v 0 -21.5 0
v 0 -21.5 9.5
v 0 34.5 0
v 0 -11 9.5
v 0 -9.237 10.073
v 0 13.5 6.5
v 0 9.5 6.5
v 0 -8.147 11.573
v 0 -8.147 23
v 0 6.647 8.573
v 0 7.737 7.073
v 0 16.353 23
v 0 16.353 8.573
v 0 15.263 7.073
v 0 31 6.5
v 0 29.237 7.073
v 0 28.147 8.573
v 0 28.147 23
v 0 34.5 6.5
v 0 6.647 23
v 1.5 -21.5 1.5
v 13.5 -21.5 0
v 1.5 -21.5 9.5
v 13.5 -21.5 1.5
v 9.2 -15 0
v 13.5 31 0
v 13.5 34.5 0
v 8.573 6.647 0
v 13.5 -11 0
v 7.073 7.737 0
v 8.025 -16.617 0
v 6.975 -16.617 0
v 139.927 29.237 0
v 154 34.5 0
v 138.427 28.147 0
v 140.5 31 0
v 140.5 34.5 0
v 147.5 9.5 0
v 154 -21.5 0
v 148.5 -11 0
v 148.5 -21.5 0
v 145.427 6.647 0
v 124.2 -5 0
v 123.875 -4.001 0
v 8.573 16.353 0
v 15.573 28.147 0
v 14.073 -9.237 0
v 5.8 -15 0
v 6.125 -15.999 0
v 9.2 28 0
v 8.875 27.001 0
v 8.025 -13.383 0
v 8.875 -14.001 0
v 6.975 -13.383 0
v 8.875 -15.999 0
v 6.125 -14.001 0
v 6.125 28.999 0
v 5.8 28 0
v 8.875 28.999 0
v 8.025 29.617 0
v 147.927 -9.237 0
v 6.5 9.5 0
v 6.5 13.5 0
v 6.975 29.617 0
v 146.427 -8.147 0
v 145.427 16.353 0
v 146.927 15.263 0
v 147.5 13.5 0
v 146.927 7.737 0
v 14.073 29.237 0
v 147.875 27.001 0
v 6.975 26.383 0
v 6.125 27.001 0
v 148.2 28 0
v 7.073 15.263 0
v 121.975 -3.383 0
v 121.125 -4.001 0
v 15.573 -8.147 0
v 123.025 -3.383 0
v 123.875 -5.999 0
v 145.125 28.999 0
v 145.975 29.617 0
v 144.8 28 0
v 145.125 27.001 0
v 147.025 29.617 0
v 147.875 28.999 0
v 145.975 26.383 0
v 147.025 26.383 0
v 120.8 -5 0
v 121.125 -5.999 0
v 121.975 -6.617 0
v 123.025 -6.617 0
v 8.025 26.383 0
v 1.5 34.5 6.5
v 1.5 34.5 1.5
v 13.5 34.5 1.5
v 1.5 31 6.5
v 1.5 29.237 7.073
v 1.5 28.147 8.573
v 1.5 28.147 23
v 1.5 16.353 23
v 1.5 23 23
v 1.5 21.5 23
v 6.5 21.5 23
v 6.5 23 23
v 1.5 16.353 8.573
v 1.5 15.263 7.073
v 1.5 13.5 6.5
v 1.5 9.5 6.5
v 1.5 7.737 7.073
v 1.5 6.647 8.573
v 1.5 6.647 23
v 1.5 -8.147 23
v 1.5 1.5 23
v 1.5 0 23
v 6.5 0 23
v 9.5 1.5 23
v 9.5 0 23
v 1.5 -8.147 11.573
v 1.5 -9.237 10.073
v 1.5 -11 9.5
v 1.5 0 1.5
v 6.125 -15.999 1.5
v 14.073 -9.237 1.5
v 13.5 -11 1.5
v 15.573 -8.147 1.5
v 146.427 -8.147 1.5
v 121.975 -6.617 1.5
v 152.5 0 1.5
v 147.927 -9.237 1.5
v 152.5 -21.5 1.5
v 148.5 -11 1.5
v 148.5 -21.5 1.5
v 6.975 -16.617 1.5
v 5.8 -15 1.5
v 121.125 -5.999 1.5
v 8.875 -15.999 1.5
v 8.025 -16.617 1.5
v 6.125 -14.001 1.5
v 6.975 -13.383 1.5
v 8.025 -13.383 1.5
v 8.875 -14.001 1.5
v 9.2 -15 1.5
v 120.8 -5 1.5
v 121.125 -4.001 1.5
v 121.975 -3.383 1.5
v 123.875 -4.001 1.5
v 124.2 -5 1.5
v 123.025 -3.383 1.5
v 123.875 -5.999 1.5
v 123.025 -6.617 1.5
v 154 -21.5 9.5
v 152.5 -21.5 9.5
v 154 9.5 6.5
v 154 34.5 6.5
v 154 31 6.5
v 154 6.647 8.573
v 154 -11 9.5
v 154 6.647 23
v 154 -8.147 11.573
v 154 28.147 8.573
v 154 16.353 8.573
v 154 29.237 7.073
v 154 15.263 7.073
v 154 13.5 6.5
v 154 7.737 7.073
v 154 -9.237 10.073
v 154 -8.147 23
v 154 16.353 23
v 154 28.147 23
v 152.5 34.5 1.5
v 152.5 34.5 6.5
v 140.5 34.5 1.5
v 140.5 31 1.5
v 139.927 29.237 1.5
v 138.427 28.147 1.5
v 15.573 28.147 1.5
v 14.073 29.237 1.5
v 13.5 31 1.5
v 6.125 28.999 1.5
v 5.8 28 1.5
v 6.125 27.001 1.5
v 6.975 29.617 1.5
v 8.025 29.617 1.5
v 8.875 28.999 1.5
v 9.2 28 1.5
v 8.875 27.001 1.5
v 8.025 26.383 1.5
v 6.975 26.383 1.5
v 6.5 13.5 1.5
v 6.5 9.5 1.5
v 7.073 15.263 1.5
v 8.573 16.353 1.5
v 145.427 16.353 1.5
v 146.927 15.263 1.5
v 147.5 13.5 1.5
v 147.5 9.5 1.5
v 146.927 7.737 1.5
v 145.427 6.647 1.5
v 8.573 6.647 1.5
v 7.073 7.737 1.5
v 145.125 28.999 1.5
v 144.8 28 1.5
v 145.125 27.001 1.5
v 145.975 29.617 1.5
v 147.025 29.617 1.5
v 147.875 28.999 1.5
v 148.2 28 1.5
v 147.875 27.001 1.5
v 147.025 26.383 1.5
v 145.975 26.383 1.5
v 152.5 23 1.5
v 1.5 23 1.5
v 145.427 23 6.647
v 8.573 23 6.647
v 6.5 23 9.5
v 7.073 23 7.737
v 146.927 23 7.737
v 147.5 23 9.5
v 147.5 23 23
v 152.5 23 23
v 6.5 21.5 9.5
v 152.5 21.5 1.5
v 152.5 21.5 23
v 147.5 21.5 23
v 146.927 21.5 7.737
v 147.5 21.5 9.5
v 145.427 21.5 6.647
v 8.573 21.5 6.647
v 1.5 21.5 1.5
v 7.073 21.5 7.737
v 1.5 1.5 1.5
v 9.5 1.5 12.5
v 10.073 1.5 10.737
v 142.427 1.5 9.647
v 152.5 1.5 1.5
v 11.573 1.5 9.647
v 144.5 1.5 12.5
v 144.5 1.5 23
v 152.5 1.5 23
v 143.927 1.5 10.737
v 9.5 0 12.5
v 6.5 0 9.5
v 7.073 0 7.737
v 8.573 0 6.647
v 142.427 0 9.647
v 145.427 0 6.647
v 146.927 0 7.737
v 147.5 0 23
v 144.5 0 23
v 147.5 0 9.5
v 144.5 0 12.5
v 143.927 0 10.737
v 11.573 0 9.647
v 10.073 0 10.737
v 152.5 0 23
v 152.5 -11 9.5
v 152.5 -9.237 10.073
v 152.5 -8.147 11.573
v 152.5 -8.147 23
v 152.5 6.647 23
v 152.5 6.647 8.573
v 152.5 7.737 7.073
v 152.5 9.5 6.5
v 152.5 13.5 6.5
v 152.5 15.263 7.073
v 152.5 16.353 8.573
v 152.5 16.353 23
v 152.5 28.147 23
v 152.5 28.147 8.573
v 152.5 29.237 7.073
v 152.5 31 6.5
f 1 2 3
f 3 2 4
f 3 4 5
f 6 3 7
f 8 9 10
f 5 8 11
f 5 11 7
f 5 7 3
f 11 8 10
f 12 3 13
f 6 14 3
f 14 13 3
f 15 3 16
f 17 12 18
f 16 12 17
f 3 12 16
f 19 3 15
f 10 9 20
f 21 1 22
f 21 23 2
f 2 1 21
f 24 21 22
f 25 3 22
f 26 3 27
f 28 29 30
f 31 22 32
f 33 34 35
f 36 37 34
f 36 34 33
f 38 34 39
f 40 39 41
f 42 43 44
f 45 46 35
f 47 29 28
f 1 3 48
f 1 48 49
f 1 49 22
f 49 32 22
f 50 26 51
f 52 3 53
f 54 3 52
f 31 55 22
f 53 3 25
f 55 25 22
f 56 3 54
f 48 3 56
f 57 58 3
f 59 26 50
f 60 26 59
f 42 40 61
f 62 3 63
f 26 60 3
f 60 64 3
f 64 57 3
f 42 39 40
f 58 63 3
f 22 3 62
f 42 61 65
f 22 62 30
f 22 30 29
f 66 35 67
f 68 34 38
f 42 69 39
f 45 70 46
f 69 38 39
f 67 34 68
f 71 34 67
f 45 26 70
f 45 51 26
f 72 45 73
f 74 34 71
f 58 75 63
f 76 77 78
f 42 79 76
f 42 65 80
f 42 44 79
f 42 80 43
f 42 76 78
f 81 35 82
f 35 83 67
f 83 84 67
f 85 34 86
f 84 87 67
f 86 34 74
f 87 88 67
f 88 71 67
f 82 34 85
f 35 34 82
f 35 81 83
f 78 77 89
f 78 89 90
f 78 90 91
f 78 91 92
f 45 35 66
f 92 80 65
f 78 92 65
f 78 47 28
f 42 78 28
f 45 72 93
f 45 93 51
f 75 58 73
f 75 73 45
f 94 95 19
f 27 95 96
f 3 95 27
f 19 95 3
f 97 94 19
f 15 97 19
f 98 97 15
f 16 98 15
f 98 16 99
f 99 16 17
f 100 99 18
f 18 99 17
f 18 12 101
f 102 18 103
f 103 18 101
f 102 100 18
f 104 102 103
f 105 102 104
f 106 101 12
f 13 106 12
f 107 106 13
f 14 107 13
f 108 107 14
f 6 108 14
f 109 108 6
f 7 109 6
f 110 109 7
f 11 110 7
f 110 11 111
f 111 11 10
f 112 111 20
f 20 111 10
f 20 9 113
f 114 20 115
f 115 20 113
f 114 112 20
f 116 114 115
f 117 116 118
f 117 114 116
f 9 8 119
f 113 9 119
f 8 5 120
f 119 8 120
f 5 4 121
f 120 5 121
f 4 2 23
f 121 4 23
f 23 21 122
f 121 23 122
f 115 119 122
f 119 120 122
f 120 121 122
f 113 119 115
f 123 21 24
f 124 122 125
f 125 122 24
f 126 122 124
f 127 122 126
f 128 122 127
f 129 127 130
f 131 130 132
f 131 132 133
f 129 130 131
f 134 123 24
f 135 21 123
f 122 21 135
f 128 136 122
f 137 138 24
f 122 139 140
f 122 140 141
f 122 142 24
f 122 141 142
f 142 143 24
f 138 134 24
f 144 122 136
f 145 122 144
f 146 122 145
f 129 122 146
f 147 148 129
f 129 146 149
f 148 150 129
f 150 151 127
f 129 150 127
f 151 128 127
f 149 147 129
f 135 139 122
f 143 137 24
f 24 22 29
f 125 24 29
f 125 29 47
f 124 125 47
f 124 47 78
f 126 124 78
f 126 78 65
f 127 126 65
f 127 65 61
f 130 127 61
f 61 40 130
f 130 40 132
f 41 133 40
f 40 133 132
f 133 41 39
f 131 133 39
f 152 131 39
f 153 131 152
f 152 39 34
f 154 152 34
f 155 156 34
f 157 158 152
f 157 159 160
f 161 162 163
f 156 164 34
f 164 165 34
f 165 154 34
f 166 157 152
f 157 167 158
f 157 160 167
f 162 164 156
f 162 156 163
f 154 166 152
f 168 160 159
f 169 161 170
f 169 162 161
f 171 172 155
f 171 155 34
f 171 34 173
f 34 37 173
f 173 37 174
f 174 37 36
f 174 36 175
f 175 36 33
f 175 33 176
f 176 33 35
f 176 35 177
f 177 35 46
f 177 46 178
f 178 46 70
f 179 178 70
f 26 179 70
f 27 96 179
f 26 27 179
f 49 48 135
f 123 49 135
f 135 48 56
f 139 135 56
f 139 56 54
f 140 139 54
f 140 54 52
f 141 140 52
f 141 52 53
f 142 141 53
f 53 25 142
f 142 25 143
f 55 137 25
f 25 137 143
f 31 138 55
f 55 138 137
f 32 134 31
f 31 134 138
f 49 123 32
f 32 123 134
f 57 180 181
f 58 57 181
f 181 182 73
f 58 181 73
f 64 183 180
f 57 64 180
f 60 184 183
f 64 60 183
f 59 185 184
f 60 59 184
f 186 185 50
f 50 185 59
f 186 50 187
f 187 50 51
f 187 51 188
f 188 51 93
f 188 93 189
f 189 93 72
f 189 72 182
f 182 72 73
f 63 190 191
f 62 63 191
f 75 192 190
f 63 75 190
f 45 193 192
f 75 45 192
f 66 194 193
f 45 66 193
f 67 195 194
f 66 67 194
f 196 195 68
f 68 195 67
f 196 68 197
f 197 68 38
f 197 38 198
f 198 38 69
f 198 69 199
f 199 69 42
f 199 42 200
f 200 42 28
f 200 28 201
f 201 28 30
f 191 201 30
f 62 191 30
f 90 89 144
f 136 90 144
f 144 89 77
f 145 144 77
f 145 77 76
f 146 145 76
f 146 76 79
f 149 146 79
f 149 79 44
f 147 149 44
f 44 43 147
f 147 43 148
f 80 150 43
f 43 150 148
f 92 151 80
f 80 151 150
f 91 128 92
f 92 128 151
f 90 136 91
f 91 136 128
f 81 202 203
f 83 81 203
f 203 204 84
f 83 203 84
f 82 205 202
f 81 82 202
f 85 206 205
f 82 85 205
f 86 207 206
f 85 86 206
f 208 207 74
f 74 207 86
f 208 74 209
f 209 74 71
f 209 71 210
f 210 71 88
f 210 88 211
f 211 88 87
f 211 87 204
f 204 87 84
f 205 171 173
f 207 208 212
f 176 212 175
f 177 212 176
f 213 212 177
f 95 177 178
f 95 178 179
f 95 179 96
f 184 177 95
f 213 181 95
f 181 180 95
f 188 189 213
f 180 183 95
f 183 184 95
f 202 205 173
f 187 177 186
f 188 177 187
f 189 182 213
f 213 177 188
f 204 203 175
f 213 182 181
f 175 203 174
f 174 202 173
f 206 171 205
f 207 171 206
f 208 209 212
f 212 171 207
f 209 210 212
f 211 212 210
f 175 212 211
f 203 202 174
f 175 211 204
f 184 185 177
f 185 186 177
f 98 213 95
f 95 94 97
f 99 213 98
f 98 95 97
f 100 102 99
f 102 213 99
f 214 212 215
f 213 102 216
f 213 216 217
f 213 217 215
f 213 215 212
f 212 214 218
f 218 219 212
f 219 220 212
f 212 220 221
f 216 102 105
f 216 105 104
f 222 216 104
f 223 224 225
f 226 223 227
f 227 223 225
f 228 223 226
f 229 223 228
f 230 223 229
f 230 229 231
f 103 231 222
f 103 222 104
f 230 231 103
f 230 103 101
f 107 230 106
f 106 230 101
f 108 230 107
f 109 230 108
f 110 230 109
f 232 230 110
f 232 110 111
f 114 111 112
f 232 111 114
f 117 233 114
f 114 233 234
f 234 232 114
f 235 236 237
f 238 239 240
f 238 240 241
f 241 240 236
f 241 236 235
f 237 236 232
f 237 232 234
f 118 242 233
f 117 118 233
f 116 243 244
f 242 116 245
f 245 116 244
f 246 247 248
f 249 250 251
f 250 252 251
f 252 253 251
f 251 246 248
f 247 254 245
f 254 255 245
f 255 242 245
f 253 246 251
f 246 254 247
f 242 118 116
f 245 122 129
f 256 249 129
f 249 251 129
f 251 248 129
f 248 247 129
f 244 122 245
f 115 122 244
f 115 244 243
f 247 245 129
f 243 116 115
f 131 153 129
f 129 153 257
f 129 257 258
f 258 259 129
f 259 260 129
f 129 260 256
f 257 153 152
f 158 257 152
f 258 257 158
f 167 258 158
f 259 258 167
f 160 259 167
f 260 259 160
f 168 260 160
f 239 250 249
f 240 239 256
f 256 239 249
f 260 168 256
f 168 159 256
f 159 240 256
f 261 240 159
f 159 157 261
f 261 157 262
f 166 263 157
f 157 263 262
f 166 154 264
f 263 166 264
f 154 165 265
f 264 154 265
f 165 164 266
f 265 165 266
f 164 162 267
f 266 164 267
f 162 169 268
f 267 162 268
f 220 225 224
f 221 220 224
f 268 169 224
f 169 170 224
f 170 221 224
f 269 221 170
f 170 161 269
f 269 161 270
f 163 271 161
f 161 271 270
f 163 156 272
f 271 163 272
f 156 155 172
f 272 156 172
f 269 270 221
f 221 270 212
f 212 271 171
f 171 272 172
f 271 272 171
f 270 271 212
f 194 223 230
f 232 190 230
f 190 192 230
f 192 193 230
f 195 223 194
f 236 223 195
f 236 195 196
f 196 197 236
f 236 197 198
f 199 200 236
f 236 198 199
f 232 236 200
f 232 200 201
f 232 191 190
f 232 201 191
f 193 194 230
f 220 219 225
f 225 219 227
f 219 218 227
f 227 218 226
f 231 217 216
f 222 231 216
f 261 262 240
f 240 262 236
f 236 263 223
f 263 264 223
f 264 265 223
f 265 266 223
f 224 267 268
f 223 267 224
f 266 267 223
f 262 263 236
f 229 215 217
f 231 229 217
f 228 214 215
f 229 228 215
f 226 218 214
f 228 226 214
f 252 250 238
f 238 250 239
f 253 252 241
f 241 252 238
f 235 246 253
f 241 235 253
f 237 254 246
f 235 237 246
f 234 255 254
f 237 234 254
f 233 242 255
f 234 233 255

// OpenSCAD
Dl = 151;
Db = 20;
Dh = 20;

Nl = 151;
Nb = 20;
Nh = 20;
NWr = 3;
NWb = 12;

Nb2 = 40;

d = 1.5;

Wb = 5;
Wr = 3;

$fn = 10;

module frame(l, b, h, Wb, Wr, d)
{
	difference(){
		cube([l+2*d,b+2*d,h+2*d]);
		translate([d,d,d])cube([l,b,h+4*d]);
	
		rotate([90,0,0])
		translate([Wb+Wr+d,Wb+Wr+d,-4*d-b]){
			minkowski(){
				cube([l-2*(Wb+Wr),max(l,b,h)+4*d+2*Wr,l+8*d]);
				cylinder(r=Wr,h=1);
			}
		}
	
		rotate([0,-90,0])
		translate([Wb+Wr+d,Wb+Wr+d,-4*d-l]){
			minkowski(){
				cube([max(l,b,h)+4*d+2*Wr,b-2*(Wb+Wr),l+8*d]);
				cylinder(r=Wr,h=1);
			}
		}
	
		translate([Wb+Wr+d,Wb+Wr+d,-4*d]){
			minkowski(){
				cube([l-2*(Wb+Wr),b-2*(Wb+Wr),h+8*d]);
				cylinder(r=Wr,h=1);
			}
		}
	}
}

module frame2(l, b, h, Wl, Wb, Wr, d, rl, xl, yl)
{
	difference(){
		cube([l+2*d,b+2*d,h+2*d]);
		translate([d,d,d])cube([l,b,h+4*d]);
	
		rotate([90,0,0]){
			translate([Wl+Wr+d,Wb+Wr+d,-4*d-b]){
				minkowski(){
					cube([l-2*(Wl+Wr),max(l,b,h)+4*d+2*Wr,l+8*d]);
					cylinder(r=Wr,h=1);
				}
			}
			translate([xl,yl,-2*d])cylinder(r=rl, h=3*d);
			translate([l+2*d-xl,yl,-2*d])cylinder(r=rl, h=3*d);
		}
		rotate([0,-90,0]){
			translate([Wb+Wr+d,Wb+Wr+d,-4*d-l]){
				minkowski(){
					cube([max(l,b,h)+4*d+2*Wr,b-2*(Wb+Wr),l+8*d]);
					cylinder(r=Wr,h=1);
				}
			}
		}
		translate([Wb+Wr+d,Wb+Wr+d,-4*d]){
			minkowski(){
				cube([l-2*(Wb+Wr),b-2*(Wb+Wr),h+8*d]);
				cylinder(r=Wr,h=1);
			}
		}
	}
}

module frame3(l, b, h, Wl, Wb, Wr, d, rl, xl, yl)
{
	difference(){
		cube([l+2*d,b+2*d,h+2*d]);
		translate([d,d,d])cube([l,b,h+4*d]);
	
		rotate([90,0,0]){
			translate([Wb+Wr+d,Wb+Wr+d,-4*d-b]){
				minkowski(){
					cube([l-2*(Wb+Wr),max(l,b,h)+4*d+2*Wr,l+8*d]);
					cylinder(r=Wr,h=1);
				}
			}
		}
		rotate([0,-90,0]){
			translate([Wb+Wr+d,Wb+Wr+d,-4*d-l]){
				minkowski(){
					cube([max(l,b,h)+4*d+2*Wr,b-2*(Wb+Wr),l+8*d]);
					cylinder(r=Wr,h=1);
				}
			}
		}
		translate([Wl+Wr+d,Wb+Wr+d,-4*d]){
			minkowski(){
				cube([l-2*(Wl+Wr),b-2*(Wb+Wr),h+8*d]);
				cylinder(r=Wr,h=1);
			}

		}
		translate([xl,yl,-2*d])#cylinder(r=rl, h=4*d);
		translate([l+2*d-xl,yl,-2*d])#cylinder(r=rl, h=4*d);
	}
}

module frame4(l, b, h, Wl, Wb, Wr, d, rl, xl, yl,xl2,yl2)
{
	difference(){
		cube([l+2*d,b+2*d,h+2*d]);
		translate([d,d,d])cube([l,b,h+4*d]);
	
		rotate([90,0,0]){
			translate([Wb+Wr+d,Wb+Wr+d,-4*d-b]){
				minkowski(){
					cube([l-2*(Wb+Wr),max(l,b,h)+4*d+2*Wr,l+8*d]);
					cylinder(r=Wr,h=1);
				}
			}
		}
		rotate([0,-90,0]){
			translate([Wb+Wr+d,Wb+Wr+d,-4*d-l]){
				minkowski(){
					cube([max(l,b,h)+4*d+2*Wr,b-2*(Wb+Wr),l+8*d]);
					cylinder(r=Wr,h=1);
				}
			}
		}
		translate([Wl+Wr+d,Wb+Wr+d,-4*d]){
			minkowski(){
				cube([l-2*(Wb+Wr),b-2*(Wb+Wr),h+8*d]);
				cylinder(r=Wr,h=1);
			}

		}
		translate([xl,yl,-2*d])#cylinder(r=rl, h=4*d);
		translate([l+2*d-xl2,yl2,-2*d])#cylinder(r=rl, h=4*d);
	}
}

frame(Dl, Db, Dh, Wb, Wr, d);
difference(){
	translate([(Dl-Nl)/2,Db+d,0]) frame3(Nl, Nb, Nh, NWb, Wb, NWr, d, 1.7,6+d,5+d);
	translate([(Dl-Nl)/2-d,+Db+Nb/2+3*d,-d]) cube([Nl+4*d,Nb+2*d,Nh+4*d]);
}
mirror([0,1,0])
difference(){
	translate([0,-d,0]) frame4(Nl, Nb2, Nh, NWb, 8, NWr, d, 1.7,6+d,15+d, 30+d, 5+d);
	translate([(Dl-Nl)/2-d,Nb2/2+d,-d]) #cube([Nl+4*d,Nb2+2*d,Nh+4*d]);
}
